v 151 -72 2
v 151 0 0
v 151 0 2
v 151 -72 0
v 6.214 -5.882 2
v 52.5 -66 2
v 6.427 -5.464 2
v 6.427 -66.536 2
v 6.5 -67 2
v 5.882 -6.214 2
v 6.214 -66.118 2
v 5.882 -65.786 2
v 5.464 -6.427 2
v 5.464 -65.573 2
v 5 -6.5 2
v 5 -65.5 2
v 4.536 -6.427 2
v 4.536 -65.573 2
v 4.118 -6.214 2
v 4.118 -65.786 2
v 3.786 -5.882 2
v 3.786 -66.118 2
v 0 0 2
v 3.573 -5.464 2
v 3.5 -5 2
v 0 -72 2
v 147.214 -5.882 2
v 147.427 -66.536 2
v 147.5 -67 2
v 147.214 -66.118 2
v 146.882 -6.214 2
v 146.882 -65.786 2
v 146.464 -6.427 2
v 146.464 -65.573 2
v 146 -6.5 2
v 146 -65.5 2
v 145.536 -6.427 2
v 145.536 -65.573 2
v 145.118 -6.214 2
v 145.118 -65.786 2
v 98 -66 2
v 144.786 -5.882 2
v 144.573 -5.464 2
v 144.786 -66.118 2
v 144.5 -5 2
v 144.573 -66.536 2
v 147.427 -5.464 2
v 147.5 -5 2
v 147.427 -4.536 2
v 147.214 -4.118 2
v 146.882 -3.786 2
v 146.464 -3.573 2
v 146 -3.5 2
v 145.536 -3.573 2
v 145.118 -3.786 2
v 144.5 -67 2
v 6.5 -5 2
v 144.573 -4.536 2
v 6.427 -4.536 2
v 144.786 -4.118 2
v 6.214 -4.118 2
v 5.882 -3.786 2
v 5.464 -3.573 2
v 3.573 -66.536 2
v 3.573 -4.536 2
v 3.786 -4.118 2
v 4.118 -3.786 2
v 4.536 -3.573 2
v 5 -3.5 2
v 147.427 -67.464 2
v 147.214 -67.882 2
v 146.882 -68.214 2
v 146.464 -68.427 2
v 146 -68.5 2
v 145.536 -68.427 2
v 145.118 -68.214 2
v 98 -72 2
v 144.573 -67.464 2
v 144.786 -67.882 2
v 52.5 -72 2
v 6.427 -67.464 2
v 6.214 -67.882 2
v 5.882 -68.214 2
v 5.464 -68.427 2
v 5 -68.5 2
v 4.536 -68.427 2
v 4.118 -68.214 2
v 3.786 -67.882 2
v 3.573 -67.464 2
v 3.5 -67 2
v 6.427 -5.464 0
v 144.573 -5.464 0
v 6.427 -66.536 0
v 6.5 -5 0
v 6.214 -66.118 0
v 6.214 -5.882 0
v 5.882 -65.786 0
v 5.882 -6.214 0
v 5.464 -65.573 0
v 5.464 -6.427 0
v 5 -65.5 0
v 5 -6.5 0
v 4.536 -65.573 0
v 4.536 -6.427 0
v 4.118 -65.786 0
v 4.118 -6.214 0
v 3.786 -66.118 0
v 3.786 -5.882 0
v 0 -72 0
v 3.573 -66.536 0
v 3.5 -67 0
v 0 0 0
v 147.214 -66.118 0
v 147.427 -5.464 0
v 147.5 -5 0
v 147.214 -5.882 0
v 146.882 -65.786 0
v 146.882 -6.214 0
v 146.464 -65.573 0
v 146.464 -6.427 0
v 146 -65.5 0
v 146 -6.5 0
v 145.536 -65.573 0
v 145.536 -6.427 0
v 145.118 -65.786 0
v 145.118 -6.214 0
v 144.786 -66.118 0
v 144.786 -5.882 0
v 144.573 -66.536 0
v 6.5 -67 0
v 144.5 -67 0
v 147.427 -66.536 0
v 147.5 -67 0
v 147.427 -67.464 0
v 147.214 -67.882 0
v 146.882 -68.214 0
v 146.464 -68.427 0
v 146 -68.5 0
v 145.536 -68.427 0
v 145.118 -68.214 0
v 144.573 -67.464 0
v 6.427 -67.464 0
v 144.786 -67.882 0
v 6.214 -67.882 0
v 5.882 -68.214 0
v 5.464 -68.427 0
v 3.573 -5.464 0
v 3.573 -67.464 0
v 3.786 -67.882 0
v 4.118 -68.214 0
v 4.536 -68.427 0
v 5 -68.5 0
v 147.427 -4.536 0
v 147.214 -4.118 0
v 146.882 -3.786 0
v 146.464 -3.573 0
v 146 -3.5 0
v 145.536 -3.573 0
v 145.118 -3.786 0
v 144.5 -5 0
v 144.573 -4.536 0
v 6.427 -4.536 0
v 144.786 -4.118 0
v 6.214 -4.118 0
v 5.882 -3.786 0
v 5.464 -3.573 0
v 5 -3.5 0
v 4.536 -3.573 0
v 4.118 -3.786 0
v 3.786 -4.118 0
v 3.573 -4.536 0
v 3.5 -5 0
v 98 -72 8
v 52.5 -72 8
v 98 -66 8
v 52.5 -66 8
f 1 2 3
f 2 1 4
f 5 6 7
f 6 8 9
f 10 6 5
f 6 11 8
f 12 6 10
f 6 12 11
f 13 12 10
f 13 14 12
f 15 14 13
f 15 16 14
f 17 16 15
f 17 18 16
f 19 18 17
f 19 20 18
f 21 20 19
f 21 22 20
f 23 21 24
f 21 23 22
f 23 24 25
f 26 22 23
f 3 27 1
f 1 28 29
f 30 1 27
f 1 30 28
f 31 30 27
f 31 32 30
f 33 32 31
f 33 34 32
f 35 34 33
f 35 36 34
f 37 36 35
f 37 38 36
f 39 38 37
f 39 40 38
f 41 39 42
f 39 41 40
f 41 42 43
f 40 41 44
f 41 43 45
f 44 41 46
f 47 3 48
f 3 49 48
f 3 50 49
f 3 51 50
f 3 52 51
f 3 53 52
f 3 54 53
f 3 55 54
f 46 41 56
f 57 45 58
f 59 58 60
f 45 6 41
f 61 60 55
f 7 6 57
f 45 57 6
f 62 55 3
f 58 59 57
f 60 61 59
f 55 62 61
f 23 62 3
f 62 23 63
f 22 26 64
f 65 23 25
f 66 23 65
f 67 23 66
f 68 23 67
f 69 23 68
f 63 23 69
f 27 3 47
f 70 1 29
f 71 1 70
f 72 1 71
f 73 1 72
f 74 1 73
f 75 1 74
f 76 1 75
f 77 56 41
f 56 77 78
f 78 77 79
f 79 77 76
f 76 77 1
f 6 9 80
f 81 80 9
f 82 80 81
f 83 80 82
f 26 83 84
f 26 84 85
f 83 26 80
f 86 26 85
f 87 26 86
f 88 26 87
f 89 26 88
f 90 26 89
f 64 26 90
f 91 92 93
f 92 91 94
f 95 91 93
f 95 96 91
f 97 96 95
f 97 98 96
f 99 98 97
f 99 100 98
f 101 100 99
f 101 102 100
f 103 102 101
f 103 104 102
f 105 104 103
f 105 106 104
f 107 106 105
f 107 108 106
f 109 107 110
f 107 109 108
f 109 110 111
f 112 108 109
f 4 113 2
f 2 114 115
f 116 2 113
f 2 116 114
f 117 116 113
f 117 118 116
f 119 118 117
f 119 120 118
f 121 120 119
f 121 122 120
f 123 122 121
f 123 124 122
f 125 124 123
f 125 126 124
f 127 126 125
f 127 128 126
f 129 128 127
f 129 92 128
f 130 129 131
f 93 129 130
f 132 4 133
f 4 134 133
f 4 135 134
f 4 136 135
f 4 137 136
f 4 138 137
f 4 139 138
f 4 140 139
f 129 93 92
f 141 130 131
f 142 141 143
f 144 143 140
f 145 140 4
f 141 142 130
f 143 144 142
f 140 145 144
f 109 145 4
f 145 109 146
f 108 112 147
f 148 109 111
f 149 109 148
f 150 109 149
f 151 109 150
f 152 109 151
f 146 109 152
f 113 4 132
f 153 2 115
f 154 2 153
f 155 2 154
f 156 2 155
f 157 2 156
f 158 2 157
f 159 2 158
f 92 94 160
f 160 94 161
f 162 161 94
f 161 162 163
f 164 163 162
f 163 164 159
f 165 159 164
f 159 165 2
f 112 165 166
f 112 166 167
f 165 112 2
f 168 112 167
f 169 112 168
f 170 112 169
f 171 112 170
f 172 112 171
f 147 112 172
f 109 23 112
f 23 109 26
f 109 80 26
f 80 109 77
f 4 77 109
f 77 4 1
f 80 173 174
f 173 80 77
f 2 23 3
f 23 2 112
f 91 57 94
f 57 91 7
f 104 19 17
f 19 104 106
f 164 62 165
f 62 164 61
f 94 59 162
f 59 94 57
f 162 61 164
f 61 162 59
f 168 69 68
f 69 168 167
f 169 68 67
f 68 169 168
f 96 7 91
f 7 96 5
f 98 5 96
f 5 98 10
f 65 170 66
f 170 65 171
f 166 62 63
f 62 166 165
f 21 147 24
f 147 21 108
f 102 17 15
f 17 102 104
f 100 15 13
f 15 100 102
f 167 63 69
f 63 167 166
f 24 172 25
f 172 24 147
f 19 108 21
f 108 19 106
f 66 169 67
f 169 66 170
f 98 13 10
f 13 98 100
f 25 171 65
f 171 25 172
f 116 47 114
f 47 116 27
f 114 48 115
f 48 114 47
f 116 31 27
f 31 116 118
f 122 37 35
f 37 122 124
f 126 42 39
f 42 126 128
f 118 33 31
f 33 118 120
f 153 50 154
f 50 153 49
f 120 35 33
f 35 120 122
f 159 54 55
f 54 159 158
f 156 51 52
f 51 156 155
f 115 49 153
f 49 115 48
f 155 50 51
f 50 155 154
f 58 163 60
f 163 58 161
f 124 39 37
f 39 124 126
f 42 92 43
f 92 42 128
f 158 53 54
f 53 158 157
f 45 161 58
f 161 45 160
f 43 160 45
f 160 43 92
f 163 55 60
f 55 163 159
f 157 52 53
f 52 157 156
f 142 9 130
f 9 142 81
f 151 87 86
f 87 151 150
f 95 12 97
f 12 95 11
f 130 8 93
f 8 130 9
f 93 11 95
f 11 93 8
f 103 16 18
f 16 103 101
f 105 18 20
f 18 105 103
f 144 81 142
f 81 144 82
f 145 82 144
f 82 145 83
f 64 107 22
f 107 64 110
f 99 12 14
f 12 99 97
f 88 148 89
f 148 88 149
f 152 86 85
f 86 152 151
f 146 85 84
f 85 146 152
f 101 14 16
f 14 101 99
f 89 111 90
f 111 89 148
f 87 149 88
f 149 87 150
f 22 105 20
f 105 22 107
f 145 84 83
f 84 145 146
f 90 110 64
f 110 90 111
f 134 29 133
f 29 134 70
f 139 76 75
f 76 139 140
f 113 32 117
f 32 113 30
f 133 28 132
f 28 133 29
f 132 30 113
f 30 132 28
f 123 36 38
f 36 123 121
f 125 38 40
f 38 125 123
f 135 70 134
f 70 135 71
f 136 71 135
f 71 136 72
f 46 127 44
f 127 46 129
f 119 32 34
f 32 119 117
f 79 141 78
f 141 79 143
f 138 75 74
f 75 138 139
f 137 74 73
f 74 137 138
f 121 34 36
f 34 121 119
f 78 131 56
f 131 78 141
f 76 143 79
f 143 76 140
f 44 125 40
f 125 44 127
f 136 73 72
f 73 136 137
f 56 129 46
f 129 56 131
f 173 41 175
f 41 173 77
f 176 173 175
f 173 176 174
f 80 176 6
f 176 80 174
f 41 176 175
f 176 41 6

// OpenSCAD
w1 = 45;
w2 = 76;
w3 = 91;

h1 = 20.5;
h2 = 49.5;
h3 = 69;

d = 19;

module shelly() {
  translate([(w3-w1)/2-0.5, 0, 0])
    cube([w1+0.5, h3, d]);
  translate([(w3-w2)/2, 0, 0])
    cube([w2, h2, d]);
  cube([w3, h1, d]);
}

module screw_hole(x, y) {
  translate([x, y, 0])
  difference() {
    cube([10, 10, d+2*2 + 4]);
    translate([5, 5, 2])
      cylinder(50, d=3, $fn=20);
  }
}

module top_hole(x, y) {
  translate([x, y, 0])
  translate([5, 5, -2])
    cylinder(50, d=3, $fn=20);
}

module case() {
  difference() {
    cube([w3+60, h3+3, d+2*2 + 4]);

    translate([3, 3, 2])
    cube([w3+54, h3-3, d+2*2 + 4]);

    translate([(w3-w1)/2+30-0.5, 3.1, 2])
      cube([w1+0.5, h3, d+10]);
  }

  screw_hole(0, 0);
  screw_hole(w3 + 60 - 10, 0);
  screw_hole(0, h3 - 7);
  screw_hole(w3 + 60 - 10, h3 - 7);
}

module top() {
  difference() {
    cube([w3+60, h3+3, 2]);

    top_hole(0, 0);
    top_hole(w3 + 60 - 10, 0);
    top_hole(0, h3 - 7);
    top_hole(w3 + 60 - 10, h3 - 7);
  }

  // cutout
  translate([(w3-w1)/2+30-0.5, h3-3, 2])
    cube([w1+0.5, 6, 6]);
}

module lan_port() {
  translate([w2 + 30, h1 + 2, 0])
  difference() {
    cube([45, 21, 13.5 + 3.001]);
    color("green")
    translate([0, 2, -0.001])
    cube([50, 17, 20]);
  }
}

module lan_cutout() {
  translate([w2 + (w3-w2)/2 + 30, h1 + 2, 0])
    translate([0, 2, -0.001])
      cube([50, 17, 30]);
}

module power_cord_hole(x, y) {
  translate([x, y, 15])
  color("black") {
    rotate([0, 90, 0])
    cylinder(20, d=7, center=true);
    translate([0, 0, 15])
    cube([20, 7, 30], center=true);
  }
}

rotate([180, 0, 0])
mirror([0,0,1])
top();
//lan_port();

/*
difference() {
  union() {
    case();
    lan_port();

    // left stopper top
    translate([30 + (w3-w1)/2 - 4, h3 - 19 + 3, 0])
    cube([6, 19, 12]);

    // left stopper bottom
    // TODO: Needs to be shifted left if we need this
    //translate([30 - 4, 0, 0])
    //cube([6, 6, 12]);
  }
  lan_cutout();

  // output
  power_cord_hole(0, 20);
  power_cord_hole(0, 40);

  // input
  power_cord_hole(w3 + 60, 14);

  color("red")
  translate([30, 3.001, 2])
  shelly();
}
*/
